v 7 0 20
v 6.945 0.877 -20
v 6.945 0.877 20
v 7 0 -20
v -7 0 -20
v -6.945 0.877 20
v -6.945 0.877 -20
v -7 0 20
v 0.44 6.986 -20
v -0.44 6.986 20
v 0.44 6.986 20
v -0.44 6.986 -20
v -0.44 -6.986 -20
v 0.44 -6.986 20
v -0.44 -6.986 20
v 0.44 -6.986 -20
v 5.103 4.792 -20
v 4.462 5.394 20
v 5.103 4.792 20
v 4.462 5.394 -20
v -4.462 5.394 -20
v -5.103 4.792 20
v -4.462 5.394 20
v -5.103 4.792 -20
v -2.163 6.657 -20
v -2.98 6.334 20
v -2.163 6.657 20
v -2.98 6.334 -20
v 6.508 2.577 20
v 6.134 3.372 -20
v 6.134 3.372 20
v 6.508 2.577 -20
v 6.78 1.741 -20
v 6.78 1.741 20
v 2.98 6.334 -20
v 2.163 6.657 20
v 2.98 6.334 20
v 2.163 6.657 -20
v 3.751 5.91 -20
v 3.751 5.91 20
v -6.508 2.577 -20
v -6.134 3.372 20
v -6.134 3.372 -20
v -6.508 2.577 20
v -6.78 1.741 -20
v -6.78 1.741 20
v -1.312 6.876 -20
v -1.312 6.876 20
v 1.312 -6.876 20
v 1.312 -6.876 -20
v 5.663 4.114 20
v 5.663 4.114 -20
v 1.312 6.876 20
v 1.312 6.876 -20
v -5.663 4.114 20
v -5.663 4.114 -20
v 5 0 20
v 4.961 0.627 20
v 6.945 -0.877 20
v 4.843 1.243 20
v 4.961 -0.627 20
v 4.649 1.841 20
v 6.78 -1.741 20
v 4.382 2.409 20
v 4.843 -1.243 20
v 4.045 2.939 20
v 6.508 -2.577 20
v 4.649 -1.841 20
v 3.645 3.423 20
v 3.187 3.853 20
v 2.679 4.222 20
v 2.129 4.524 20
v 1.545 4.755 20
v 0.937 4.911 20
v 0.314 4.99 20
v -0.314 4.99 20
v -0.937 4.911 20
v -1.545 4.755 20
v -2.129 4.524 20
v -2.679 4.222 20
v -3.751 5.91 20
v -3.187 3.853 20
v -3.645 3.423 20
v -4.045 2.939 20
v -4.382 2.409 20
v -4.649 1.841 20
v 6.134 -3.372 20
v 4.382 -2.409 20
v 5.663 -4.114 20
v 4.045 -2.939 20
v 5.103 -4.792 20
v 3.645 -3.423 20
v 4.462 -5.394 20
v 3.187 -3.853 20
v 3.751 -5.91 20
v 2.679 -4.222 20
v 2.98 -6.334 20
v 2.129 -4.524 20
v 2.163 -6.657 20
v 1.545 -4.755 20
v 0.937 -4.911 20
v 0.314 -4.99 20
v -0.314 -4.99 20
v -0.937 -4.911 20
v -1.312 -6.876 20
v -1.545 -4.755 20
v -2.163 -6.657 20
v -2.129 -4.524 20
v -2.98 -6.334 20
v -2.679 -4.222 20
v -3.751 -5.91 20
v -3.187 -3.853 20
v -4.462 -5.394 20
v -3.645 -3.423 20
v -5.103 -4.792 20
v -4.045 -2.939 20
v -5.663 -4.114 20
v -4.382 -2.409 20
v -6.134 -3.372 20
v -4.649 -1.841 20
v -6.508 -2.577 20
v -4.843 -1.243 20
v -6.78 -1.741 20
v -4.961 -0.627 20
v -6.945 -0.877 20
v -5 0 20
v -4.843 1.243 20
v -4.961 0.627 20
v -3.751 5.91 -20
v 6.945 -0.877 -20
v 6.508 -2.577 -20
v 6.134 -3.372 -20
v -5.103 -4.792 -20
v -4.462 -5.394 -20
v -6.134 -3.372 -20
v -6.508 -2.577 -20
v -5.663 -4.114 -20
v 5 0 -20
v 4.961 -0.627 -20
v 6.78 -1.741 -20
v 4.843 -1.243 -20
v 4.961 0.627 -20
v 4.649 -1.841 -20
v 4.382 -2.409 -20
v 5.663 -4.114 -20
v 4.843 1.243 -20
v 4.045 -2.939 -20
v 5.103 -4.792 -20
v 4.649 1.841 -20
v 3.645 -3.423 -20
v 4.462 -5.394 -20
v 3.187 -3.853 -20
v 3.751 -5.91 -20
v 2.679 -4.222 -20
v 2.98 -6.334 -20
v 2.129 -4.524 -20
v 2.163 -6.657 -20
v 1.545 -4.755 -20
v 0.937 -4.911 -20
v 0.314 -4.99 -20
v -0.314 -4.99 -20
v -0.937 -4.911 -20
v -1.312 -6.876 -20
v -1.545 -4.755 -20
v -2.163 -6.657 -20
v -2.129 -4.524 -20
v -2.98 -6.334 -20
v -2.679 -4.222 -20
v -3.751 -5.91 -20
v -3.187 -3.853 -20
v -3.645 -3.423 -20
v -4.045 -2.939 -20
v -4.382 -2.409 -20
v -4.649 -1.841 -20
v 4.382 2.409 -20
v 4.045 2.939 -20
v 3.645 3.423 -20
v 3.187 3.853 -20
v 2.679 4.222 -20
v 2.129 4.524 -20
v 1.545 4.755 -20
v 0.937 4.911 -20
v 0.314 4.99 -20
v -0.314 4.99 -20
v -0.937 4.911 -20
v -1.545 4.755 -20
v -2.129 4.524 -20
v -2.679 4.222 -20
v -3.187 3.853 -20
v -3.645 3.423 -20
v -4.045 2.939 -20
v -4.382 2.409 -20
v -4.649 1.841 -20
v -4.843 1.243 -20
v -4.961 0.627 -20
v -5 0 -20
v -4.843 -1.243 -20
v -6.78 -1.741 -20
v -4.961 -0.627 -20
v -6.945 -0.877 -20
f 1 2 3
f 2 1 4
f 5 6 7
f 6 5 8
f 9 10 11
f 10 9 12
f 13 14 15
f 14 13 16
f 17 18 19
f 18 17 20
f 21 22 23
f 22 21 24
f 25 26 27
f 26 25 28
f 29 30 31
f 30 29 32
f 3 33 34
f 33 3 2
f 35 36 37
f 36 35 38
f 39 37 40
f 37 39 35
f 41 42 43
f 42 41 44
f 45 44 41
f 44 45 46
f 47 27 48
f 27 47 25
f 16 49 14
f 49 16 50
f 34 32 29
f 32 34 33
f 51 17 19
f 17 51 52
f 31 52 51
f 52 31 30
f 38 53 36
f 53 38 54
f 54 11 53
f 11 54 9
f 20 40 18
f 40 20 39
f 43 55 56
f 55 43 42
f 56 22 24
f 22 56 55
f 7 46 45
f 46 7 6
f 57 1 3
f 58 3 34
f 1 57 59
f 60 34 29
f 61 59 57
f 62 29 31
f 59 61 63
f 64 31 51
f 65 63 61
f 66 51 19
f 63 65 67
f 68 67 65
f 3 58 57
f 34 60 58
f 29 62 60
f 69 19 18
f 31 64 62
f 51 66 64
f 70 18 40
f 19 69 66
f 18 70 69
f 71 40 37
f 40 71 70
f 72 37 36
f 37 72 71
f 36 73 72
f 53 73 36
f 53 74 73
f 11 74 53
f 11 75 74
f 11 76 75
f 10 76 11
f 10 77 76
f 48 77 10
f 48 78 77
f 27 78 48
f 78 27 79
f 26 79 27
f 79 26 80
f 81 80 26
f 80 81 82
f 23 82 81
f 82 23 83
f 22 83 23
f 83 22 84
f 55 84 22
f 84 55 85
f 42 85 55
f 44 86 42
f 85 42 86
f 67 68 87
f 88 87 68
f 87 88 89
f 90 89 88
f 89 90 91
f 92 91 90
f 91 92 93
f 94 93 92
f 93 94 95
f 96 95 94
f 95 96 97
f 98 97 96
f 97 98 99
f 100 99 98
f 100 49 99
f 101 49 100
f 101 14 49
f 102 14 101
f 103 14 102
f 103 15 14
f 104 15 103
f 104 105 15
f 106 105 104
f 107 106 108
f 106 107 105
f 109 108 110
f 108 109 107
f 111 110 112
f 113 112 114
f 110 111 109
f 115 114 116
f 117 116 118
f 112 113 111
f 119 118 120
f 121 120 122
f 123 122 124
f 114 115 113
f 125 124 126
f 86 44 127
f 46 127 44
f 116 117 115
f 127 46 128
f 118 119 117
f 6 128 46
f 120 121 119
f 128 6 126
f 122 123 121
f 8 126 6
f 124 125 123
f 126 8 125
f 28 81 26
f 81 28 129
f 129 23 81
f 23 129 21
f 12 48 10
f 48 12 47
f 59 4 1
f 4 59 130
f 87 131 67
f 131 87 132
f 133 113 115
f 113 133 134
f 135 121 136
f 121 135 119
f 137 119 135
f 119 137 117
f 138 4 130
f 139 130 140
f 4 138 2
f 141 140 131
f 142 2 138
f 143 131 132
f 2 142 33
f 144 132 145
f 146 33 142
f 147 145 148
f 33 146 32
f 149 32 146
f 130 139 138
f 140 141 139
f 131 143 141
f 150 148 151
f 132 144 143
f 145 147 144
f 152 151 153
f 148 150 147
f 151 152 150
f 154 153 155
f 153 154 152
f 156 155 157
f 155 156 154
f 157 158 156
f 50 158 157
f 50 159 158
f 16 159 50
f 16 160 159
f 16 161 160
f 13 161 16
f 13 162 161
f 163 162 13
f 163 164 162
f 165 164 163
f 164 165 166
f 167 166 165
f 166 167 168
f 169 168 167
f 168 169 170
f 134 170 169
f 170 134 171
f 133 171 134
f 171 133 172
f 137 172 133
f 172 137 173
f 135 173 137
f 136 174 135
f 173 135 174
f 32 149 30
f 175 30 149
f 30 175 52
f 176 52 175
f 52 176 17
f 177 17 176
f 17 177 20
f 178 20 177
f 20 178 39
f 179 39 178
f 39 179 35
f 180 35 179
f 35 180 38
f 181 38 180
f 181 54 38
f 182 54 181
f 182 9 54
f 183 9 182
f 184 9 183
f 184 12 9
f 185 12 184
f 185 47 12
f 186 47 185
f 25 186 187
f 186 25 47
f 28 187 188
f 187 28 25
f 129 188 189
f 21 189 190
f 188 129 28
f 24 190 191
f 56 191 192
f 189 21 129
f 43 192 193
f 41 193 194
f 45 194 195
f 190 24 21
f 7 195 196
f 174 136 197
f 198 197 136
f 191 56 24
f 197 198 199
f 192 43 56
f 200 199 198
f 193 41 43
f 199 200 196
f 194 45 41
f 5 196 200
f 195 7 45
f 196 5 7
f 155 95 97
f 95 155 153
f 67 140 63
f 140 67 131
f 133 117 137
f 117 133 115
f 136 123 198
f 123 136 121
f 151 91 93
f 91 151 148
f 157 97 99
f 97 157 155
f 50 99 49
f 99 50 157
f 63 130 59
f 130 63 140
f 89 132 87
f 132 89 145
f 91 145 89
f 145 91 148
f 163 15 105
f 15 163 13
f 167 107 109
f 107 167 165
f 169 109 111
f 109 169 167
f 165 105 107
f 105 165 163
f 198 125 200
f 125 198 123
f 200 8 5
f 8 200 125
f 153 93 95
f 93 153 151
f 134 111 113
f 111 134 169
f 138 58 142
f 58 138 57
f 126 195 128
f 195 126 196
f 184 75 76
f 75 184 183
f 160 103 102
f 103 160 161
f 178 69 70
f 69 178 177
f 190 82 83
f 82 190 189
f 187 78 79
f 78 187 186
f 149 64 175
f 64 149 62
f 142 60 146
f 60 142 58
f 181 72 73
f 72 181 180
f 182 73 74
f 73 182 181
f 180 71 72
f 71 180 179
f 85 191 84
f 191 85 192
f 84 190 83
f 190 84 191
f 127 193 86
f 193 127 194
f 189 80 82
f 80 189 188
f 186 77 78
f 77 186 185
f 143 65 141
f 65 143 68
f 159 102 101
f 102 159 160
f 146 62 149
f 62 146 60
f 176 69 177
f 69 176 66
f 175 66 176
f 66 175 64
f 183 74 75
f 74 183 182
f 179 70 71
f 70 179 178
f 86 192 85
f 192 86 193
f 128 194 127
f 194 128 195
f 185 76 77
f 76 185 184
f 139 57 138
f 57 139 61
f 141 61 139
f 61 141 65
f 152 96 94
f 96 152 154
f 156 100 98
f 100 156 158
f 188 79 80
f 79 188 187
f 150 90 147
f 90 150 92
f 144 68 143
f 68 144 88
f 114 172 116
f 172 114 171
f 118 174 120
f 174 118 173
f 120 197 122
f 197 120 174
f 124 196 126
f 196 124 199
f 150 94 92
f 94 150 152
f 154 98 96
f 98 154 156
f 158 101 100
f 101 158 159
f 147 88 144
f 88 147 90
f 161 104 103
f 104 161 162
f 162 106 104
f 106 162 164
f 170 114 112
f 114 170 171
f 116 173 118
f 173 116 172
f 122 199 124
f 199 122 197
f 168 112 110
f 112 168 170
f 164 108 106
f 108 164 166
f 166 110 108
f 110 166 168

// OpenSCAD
$fn = 50;


difference() {
	union() {
		translate(v = [0, 0, -20.0000000000]) {
			cylinder(h = 40, r = 7.0000000000);
		}
	}
	union() {
		translate(v = [0, 0, -100.0000000000]) {
			cylinder(h = 200, r = 5.0000000000);
		}
	}
}
